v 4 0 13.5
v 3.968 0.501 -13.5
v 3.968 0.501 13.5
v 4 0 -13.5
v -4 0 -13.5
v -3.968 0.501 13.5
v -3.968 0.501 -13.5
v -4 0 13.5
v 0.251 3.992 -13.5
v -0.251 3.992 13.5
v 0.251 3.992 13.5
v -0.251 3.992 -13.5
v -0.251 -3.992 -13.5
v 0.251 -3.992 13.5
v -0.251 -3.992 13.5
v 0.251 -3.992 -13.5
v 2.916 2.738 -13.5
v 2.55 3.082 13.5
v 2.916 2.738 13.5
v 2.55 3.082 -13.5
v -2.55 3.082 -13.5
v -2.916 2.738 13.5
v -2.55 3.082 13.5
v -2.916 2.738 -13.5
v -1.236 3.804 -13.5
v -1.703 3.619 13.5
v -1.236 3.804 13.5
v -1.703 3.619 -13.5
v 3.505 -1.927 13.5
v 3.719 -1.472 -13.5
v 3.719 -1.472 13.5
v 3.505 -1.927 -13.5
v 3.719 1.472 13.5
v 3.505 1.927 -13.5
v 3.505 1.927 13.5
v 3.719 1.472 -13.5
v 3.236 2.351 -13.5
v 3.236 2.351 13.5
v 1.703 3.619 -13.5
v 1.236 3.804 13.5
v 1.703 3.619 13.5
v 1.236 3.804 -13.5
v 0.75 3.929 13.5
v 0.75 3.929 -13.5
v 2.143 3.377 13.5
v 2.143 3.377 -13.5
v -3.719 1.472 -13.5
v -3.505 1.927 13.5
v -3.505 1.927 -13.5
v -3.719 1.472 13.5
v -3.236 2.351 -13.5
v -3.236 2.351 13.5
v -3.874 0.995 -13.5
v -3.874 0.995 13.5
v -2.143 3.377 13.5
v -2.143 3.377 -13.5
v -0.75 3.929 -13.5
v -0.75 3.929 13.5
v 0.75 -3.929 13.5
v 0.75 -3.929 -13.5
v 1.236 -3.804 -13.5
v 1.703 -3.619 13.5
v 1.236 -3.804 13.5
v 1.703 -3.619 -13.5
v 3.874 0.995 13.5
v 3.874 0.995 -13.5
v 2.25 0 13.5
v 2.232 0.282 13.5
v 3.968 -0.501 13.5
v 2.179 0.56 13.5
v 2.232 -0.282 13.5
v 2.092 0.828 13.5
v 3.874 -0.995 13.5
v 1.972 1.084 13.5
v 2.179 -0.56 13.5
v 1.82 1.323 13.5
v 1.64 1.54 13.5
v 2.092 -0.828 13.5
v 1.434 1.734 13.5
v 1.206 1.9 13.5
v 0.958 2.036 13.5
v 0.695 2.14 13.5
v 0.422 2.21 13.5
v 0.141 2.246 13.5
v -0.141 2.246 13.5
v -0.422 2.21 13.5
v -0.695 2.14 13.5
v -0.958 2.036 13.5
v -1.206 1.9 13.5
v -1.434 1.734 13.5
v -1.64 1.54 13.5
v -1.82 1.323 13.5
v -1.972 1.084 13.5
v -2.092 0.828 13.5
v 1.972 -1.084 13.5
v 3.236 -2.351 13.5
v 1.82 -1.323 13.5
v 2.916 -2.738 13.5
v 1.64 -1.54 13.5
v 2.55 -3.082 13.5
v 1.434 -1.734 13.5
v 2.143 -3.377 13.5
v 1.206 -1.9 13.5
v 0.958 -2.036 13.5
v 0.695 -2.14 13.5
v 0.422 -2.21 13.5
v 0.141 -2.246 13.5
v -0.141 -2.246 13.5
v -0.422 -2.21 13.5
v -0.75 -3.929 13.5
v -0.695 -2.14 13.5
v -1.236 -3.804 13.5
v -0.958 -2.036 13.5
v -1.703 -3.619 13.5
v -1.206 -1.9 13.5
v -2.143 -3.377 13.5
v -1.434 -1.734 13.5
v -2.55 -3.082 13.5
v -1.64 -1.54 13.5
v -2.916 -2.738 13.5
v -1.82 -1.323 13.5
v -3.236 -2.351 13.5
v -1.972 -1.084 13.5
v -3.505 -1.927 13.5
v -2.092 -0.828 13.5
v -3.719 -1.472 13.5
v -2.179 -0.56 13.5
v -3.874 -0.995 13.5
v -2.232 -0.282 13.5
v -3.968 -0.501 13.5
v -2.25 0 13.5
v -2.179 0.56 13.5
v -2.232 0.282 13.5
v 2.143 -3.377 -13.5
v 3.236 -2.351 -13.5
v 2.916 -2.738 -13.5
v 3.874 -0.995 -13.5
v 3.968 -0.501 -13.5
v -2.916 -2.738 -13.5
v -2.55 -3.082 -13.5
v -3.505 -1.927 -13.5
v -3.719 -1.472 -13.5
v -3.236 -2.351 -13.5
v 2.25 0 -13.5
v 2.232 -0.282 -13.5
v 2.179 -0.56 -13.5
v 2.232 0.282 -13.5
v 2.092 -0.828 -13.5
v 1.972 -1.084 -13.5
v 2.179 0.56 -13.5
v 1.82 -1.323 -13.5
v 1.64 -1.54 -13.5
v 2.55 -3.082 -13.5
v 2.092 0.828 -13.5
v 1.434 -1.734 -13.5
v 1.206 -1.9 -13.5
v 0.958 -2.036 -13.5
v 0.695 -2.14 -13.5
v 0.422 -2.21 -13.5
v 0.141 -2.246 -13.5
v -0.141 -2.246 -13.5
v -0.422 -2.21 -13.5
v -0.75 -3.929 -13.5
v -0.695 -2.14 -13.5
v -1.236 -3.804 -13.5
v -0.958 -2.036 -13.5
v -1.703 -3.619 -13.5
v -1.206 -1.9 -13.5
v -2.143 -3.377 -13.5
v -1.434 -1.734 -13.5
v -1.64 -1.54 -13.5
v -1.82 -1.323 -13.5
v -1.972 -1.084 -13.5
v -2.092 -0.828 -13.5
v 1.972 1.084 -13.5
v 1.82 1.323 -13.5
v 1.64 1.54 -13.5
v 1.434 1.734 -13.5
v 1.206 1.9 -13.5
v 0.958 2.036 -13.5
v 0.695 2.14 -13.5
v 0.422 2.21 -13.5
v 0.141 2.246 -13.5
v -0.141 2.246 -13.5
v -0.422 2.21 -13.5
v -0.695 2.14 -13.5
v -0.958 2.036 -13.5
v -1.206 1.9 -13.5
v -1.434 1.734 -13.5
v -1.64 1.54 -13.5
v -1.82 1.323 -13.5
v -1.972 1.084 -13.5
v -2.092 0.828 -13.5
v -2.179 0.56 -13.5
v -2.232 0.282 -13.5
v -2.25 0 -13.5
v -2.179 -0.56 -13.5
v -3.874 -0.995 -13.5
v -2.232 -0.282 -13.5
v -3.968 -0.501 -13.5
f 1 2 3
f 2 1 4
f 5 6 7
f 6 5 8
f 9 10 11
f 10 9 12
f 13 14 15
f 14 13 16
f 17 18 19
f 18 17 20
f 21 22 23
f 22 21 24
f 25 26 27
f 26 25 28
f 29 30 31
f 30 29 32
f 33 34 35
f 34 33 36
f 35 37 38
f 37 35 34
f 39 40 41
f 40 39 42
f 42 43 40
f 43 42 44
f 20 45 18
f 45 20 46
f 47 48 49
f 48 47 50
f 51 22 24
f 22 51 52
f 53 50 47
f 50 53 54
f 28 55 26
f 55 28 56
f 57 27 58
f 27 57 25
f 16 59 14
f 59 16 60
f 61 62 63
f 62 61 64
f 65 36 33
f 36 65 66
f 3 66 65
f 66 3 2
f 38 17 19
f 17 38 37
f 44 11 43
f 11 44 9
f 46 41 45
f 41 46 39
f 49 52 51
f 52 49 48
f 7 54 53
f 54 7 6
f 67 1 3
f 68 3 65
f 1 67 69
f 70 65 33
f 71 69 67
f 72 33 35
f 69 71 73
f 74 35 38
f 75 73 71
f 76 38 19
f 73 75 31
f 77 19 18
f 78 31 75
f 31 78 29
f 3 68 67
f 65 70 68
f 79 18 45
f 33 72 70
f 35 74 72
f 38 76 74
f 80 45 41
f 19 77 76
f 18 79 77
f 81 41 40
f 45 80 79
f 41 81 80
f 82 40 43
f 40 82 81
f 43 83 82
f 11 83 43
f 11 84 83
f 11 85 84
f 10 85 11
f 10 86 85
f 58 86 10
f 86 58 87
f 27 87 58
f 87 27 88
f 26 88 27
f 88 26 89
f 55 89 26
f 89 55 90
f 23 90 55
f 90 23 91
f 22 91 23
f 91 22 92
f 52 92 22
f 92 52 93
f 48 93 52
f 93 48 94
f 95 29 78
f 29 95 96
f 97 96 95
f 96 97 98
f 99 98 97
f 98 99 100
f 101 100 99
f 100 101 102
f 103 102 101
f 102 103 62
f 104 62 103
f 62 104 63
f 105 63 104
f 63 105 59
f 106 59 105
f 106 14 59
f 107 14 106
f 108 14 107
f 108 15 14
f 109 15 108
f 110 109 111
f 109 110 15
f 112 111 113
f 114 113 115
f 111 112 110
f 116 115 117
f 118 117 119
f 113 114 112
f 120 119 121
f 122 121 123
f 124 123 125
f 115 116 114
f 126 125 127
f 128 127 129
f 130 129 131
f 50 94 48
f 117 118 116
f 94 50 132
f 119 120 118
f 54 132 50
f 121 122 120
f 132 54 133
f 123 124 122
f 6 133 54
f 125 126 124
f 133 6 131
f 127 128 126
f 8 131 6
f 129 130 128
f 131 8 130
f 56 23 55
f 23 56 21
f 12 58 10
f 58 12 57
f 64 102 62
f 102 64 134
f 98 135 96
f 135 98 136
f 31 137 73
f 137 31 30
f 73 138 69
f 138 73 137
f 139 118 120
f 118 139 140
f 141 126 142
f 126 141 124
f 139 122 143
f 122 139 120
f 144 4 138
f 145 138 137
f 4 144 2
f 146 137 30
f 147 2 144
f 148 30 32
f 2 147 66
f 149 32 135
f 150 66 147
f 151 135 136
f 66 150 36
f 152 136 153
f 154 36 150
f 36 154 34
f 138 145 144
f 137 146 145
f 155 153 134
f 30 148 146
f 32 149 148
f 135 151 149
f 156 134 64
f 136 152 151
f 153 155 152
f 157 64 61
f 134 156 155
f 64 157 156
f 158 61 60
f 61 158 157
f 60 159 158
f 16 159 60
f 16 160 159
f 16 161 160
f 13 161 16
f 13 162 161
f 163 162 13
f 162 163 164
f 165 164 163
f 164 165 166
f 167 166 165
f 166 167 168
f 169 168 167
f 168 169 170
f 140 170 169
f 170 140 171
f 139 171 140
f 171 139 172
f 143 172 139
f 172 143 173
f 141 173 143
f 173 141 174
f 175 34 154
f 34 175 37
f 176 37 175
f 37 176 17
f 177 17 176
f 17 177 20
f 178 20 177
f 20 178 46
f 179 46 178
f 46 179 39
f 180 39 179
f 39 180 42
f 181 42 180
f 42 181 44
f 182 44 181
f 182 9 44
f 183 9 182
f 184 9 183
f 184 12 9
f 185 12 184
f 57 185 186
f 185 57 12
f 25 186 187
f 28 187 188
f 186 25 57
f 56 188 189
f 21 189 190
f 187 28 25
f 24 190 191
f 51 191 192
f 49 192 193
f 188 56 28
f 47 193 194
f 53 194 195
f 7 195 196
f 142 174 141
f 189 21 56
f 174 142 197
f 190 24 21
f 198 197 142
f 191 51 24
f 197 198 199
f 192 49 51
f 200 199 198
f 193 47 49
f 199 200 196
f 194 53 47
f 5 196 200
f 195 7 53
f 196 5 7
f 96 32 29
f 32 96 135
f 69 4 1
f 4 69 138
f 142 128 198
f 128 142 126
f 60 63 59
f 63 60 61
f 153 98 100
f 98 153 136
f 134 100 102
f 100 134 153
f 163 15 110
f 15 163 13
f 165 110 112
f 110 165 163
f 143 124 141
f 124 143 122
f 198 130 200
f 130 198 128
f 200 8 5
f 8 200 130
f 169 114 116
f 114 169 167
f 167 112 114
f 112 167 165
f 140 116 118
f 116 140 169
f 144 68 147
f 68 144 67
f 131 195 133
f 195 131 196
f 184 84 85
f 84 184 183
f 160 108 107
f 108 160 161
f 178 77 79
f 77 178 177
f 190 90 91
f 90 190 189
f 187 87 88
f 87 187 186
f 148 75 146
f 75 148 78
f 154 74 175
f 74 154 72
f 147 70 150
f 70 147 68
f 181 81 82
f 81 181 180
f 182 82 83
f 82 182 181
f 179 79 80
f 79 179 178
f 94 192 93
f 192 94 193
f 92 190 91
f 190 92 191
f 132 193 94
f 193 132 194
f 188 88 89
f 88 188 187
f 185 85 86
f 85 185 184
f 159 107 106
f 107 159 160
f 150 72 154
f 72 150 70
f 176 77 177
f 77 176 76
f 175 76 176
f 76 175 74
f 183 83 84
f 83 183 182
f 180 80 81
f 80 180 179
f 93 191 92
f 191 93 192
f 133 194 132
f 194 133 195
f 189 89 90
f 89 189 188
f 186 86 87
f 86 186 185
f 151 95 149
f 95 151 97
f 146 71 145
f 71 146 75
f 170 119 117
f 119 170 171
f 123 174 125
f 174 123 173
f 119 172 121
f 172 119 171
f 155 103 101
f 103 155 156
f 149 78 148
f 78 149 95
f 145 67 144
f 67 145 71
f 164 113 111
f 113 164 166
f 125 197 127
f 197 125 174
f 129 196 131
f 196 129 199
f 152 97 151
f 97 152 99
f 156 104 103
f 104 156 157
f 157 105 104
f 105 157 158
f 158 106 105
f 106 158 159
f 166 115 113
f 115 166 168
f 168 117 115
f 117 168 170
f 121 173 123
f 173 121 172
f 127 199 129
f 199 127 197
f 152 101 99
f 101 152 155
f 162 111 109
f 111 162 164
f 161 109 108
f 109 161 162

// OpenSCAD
$fn = 50;


difference() {
	union() {
		translate(v = [0, 0, -13.5000000000]) {
			cylinder(h = 27, r = 4.0000000000);
		}
	}
	union() {
		translate(v = [0, 0, -100.0000000000]) {
			cylinder(h = 200, r = 2.2500000000);
		}
	}
}
